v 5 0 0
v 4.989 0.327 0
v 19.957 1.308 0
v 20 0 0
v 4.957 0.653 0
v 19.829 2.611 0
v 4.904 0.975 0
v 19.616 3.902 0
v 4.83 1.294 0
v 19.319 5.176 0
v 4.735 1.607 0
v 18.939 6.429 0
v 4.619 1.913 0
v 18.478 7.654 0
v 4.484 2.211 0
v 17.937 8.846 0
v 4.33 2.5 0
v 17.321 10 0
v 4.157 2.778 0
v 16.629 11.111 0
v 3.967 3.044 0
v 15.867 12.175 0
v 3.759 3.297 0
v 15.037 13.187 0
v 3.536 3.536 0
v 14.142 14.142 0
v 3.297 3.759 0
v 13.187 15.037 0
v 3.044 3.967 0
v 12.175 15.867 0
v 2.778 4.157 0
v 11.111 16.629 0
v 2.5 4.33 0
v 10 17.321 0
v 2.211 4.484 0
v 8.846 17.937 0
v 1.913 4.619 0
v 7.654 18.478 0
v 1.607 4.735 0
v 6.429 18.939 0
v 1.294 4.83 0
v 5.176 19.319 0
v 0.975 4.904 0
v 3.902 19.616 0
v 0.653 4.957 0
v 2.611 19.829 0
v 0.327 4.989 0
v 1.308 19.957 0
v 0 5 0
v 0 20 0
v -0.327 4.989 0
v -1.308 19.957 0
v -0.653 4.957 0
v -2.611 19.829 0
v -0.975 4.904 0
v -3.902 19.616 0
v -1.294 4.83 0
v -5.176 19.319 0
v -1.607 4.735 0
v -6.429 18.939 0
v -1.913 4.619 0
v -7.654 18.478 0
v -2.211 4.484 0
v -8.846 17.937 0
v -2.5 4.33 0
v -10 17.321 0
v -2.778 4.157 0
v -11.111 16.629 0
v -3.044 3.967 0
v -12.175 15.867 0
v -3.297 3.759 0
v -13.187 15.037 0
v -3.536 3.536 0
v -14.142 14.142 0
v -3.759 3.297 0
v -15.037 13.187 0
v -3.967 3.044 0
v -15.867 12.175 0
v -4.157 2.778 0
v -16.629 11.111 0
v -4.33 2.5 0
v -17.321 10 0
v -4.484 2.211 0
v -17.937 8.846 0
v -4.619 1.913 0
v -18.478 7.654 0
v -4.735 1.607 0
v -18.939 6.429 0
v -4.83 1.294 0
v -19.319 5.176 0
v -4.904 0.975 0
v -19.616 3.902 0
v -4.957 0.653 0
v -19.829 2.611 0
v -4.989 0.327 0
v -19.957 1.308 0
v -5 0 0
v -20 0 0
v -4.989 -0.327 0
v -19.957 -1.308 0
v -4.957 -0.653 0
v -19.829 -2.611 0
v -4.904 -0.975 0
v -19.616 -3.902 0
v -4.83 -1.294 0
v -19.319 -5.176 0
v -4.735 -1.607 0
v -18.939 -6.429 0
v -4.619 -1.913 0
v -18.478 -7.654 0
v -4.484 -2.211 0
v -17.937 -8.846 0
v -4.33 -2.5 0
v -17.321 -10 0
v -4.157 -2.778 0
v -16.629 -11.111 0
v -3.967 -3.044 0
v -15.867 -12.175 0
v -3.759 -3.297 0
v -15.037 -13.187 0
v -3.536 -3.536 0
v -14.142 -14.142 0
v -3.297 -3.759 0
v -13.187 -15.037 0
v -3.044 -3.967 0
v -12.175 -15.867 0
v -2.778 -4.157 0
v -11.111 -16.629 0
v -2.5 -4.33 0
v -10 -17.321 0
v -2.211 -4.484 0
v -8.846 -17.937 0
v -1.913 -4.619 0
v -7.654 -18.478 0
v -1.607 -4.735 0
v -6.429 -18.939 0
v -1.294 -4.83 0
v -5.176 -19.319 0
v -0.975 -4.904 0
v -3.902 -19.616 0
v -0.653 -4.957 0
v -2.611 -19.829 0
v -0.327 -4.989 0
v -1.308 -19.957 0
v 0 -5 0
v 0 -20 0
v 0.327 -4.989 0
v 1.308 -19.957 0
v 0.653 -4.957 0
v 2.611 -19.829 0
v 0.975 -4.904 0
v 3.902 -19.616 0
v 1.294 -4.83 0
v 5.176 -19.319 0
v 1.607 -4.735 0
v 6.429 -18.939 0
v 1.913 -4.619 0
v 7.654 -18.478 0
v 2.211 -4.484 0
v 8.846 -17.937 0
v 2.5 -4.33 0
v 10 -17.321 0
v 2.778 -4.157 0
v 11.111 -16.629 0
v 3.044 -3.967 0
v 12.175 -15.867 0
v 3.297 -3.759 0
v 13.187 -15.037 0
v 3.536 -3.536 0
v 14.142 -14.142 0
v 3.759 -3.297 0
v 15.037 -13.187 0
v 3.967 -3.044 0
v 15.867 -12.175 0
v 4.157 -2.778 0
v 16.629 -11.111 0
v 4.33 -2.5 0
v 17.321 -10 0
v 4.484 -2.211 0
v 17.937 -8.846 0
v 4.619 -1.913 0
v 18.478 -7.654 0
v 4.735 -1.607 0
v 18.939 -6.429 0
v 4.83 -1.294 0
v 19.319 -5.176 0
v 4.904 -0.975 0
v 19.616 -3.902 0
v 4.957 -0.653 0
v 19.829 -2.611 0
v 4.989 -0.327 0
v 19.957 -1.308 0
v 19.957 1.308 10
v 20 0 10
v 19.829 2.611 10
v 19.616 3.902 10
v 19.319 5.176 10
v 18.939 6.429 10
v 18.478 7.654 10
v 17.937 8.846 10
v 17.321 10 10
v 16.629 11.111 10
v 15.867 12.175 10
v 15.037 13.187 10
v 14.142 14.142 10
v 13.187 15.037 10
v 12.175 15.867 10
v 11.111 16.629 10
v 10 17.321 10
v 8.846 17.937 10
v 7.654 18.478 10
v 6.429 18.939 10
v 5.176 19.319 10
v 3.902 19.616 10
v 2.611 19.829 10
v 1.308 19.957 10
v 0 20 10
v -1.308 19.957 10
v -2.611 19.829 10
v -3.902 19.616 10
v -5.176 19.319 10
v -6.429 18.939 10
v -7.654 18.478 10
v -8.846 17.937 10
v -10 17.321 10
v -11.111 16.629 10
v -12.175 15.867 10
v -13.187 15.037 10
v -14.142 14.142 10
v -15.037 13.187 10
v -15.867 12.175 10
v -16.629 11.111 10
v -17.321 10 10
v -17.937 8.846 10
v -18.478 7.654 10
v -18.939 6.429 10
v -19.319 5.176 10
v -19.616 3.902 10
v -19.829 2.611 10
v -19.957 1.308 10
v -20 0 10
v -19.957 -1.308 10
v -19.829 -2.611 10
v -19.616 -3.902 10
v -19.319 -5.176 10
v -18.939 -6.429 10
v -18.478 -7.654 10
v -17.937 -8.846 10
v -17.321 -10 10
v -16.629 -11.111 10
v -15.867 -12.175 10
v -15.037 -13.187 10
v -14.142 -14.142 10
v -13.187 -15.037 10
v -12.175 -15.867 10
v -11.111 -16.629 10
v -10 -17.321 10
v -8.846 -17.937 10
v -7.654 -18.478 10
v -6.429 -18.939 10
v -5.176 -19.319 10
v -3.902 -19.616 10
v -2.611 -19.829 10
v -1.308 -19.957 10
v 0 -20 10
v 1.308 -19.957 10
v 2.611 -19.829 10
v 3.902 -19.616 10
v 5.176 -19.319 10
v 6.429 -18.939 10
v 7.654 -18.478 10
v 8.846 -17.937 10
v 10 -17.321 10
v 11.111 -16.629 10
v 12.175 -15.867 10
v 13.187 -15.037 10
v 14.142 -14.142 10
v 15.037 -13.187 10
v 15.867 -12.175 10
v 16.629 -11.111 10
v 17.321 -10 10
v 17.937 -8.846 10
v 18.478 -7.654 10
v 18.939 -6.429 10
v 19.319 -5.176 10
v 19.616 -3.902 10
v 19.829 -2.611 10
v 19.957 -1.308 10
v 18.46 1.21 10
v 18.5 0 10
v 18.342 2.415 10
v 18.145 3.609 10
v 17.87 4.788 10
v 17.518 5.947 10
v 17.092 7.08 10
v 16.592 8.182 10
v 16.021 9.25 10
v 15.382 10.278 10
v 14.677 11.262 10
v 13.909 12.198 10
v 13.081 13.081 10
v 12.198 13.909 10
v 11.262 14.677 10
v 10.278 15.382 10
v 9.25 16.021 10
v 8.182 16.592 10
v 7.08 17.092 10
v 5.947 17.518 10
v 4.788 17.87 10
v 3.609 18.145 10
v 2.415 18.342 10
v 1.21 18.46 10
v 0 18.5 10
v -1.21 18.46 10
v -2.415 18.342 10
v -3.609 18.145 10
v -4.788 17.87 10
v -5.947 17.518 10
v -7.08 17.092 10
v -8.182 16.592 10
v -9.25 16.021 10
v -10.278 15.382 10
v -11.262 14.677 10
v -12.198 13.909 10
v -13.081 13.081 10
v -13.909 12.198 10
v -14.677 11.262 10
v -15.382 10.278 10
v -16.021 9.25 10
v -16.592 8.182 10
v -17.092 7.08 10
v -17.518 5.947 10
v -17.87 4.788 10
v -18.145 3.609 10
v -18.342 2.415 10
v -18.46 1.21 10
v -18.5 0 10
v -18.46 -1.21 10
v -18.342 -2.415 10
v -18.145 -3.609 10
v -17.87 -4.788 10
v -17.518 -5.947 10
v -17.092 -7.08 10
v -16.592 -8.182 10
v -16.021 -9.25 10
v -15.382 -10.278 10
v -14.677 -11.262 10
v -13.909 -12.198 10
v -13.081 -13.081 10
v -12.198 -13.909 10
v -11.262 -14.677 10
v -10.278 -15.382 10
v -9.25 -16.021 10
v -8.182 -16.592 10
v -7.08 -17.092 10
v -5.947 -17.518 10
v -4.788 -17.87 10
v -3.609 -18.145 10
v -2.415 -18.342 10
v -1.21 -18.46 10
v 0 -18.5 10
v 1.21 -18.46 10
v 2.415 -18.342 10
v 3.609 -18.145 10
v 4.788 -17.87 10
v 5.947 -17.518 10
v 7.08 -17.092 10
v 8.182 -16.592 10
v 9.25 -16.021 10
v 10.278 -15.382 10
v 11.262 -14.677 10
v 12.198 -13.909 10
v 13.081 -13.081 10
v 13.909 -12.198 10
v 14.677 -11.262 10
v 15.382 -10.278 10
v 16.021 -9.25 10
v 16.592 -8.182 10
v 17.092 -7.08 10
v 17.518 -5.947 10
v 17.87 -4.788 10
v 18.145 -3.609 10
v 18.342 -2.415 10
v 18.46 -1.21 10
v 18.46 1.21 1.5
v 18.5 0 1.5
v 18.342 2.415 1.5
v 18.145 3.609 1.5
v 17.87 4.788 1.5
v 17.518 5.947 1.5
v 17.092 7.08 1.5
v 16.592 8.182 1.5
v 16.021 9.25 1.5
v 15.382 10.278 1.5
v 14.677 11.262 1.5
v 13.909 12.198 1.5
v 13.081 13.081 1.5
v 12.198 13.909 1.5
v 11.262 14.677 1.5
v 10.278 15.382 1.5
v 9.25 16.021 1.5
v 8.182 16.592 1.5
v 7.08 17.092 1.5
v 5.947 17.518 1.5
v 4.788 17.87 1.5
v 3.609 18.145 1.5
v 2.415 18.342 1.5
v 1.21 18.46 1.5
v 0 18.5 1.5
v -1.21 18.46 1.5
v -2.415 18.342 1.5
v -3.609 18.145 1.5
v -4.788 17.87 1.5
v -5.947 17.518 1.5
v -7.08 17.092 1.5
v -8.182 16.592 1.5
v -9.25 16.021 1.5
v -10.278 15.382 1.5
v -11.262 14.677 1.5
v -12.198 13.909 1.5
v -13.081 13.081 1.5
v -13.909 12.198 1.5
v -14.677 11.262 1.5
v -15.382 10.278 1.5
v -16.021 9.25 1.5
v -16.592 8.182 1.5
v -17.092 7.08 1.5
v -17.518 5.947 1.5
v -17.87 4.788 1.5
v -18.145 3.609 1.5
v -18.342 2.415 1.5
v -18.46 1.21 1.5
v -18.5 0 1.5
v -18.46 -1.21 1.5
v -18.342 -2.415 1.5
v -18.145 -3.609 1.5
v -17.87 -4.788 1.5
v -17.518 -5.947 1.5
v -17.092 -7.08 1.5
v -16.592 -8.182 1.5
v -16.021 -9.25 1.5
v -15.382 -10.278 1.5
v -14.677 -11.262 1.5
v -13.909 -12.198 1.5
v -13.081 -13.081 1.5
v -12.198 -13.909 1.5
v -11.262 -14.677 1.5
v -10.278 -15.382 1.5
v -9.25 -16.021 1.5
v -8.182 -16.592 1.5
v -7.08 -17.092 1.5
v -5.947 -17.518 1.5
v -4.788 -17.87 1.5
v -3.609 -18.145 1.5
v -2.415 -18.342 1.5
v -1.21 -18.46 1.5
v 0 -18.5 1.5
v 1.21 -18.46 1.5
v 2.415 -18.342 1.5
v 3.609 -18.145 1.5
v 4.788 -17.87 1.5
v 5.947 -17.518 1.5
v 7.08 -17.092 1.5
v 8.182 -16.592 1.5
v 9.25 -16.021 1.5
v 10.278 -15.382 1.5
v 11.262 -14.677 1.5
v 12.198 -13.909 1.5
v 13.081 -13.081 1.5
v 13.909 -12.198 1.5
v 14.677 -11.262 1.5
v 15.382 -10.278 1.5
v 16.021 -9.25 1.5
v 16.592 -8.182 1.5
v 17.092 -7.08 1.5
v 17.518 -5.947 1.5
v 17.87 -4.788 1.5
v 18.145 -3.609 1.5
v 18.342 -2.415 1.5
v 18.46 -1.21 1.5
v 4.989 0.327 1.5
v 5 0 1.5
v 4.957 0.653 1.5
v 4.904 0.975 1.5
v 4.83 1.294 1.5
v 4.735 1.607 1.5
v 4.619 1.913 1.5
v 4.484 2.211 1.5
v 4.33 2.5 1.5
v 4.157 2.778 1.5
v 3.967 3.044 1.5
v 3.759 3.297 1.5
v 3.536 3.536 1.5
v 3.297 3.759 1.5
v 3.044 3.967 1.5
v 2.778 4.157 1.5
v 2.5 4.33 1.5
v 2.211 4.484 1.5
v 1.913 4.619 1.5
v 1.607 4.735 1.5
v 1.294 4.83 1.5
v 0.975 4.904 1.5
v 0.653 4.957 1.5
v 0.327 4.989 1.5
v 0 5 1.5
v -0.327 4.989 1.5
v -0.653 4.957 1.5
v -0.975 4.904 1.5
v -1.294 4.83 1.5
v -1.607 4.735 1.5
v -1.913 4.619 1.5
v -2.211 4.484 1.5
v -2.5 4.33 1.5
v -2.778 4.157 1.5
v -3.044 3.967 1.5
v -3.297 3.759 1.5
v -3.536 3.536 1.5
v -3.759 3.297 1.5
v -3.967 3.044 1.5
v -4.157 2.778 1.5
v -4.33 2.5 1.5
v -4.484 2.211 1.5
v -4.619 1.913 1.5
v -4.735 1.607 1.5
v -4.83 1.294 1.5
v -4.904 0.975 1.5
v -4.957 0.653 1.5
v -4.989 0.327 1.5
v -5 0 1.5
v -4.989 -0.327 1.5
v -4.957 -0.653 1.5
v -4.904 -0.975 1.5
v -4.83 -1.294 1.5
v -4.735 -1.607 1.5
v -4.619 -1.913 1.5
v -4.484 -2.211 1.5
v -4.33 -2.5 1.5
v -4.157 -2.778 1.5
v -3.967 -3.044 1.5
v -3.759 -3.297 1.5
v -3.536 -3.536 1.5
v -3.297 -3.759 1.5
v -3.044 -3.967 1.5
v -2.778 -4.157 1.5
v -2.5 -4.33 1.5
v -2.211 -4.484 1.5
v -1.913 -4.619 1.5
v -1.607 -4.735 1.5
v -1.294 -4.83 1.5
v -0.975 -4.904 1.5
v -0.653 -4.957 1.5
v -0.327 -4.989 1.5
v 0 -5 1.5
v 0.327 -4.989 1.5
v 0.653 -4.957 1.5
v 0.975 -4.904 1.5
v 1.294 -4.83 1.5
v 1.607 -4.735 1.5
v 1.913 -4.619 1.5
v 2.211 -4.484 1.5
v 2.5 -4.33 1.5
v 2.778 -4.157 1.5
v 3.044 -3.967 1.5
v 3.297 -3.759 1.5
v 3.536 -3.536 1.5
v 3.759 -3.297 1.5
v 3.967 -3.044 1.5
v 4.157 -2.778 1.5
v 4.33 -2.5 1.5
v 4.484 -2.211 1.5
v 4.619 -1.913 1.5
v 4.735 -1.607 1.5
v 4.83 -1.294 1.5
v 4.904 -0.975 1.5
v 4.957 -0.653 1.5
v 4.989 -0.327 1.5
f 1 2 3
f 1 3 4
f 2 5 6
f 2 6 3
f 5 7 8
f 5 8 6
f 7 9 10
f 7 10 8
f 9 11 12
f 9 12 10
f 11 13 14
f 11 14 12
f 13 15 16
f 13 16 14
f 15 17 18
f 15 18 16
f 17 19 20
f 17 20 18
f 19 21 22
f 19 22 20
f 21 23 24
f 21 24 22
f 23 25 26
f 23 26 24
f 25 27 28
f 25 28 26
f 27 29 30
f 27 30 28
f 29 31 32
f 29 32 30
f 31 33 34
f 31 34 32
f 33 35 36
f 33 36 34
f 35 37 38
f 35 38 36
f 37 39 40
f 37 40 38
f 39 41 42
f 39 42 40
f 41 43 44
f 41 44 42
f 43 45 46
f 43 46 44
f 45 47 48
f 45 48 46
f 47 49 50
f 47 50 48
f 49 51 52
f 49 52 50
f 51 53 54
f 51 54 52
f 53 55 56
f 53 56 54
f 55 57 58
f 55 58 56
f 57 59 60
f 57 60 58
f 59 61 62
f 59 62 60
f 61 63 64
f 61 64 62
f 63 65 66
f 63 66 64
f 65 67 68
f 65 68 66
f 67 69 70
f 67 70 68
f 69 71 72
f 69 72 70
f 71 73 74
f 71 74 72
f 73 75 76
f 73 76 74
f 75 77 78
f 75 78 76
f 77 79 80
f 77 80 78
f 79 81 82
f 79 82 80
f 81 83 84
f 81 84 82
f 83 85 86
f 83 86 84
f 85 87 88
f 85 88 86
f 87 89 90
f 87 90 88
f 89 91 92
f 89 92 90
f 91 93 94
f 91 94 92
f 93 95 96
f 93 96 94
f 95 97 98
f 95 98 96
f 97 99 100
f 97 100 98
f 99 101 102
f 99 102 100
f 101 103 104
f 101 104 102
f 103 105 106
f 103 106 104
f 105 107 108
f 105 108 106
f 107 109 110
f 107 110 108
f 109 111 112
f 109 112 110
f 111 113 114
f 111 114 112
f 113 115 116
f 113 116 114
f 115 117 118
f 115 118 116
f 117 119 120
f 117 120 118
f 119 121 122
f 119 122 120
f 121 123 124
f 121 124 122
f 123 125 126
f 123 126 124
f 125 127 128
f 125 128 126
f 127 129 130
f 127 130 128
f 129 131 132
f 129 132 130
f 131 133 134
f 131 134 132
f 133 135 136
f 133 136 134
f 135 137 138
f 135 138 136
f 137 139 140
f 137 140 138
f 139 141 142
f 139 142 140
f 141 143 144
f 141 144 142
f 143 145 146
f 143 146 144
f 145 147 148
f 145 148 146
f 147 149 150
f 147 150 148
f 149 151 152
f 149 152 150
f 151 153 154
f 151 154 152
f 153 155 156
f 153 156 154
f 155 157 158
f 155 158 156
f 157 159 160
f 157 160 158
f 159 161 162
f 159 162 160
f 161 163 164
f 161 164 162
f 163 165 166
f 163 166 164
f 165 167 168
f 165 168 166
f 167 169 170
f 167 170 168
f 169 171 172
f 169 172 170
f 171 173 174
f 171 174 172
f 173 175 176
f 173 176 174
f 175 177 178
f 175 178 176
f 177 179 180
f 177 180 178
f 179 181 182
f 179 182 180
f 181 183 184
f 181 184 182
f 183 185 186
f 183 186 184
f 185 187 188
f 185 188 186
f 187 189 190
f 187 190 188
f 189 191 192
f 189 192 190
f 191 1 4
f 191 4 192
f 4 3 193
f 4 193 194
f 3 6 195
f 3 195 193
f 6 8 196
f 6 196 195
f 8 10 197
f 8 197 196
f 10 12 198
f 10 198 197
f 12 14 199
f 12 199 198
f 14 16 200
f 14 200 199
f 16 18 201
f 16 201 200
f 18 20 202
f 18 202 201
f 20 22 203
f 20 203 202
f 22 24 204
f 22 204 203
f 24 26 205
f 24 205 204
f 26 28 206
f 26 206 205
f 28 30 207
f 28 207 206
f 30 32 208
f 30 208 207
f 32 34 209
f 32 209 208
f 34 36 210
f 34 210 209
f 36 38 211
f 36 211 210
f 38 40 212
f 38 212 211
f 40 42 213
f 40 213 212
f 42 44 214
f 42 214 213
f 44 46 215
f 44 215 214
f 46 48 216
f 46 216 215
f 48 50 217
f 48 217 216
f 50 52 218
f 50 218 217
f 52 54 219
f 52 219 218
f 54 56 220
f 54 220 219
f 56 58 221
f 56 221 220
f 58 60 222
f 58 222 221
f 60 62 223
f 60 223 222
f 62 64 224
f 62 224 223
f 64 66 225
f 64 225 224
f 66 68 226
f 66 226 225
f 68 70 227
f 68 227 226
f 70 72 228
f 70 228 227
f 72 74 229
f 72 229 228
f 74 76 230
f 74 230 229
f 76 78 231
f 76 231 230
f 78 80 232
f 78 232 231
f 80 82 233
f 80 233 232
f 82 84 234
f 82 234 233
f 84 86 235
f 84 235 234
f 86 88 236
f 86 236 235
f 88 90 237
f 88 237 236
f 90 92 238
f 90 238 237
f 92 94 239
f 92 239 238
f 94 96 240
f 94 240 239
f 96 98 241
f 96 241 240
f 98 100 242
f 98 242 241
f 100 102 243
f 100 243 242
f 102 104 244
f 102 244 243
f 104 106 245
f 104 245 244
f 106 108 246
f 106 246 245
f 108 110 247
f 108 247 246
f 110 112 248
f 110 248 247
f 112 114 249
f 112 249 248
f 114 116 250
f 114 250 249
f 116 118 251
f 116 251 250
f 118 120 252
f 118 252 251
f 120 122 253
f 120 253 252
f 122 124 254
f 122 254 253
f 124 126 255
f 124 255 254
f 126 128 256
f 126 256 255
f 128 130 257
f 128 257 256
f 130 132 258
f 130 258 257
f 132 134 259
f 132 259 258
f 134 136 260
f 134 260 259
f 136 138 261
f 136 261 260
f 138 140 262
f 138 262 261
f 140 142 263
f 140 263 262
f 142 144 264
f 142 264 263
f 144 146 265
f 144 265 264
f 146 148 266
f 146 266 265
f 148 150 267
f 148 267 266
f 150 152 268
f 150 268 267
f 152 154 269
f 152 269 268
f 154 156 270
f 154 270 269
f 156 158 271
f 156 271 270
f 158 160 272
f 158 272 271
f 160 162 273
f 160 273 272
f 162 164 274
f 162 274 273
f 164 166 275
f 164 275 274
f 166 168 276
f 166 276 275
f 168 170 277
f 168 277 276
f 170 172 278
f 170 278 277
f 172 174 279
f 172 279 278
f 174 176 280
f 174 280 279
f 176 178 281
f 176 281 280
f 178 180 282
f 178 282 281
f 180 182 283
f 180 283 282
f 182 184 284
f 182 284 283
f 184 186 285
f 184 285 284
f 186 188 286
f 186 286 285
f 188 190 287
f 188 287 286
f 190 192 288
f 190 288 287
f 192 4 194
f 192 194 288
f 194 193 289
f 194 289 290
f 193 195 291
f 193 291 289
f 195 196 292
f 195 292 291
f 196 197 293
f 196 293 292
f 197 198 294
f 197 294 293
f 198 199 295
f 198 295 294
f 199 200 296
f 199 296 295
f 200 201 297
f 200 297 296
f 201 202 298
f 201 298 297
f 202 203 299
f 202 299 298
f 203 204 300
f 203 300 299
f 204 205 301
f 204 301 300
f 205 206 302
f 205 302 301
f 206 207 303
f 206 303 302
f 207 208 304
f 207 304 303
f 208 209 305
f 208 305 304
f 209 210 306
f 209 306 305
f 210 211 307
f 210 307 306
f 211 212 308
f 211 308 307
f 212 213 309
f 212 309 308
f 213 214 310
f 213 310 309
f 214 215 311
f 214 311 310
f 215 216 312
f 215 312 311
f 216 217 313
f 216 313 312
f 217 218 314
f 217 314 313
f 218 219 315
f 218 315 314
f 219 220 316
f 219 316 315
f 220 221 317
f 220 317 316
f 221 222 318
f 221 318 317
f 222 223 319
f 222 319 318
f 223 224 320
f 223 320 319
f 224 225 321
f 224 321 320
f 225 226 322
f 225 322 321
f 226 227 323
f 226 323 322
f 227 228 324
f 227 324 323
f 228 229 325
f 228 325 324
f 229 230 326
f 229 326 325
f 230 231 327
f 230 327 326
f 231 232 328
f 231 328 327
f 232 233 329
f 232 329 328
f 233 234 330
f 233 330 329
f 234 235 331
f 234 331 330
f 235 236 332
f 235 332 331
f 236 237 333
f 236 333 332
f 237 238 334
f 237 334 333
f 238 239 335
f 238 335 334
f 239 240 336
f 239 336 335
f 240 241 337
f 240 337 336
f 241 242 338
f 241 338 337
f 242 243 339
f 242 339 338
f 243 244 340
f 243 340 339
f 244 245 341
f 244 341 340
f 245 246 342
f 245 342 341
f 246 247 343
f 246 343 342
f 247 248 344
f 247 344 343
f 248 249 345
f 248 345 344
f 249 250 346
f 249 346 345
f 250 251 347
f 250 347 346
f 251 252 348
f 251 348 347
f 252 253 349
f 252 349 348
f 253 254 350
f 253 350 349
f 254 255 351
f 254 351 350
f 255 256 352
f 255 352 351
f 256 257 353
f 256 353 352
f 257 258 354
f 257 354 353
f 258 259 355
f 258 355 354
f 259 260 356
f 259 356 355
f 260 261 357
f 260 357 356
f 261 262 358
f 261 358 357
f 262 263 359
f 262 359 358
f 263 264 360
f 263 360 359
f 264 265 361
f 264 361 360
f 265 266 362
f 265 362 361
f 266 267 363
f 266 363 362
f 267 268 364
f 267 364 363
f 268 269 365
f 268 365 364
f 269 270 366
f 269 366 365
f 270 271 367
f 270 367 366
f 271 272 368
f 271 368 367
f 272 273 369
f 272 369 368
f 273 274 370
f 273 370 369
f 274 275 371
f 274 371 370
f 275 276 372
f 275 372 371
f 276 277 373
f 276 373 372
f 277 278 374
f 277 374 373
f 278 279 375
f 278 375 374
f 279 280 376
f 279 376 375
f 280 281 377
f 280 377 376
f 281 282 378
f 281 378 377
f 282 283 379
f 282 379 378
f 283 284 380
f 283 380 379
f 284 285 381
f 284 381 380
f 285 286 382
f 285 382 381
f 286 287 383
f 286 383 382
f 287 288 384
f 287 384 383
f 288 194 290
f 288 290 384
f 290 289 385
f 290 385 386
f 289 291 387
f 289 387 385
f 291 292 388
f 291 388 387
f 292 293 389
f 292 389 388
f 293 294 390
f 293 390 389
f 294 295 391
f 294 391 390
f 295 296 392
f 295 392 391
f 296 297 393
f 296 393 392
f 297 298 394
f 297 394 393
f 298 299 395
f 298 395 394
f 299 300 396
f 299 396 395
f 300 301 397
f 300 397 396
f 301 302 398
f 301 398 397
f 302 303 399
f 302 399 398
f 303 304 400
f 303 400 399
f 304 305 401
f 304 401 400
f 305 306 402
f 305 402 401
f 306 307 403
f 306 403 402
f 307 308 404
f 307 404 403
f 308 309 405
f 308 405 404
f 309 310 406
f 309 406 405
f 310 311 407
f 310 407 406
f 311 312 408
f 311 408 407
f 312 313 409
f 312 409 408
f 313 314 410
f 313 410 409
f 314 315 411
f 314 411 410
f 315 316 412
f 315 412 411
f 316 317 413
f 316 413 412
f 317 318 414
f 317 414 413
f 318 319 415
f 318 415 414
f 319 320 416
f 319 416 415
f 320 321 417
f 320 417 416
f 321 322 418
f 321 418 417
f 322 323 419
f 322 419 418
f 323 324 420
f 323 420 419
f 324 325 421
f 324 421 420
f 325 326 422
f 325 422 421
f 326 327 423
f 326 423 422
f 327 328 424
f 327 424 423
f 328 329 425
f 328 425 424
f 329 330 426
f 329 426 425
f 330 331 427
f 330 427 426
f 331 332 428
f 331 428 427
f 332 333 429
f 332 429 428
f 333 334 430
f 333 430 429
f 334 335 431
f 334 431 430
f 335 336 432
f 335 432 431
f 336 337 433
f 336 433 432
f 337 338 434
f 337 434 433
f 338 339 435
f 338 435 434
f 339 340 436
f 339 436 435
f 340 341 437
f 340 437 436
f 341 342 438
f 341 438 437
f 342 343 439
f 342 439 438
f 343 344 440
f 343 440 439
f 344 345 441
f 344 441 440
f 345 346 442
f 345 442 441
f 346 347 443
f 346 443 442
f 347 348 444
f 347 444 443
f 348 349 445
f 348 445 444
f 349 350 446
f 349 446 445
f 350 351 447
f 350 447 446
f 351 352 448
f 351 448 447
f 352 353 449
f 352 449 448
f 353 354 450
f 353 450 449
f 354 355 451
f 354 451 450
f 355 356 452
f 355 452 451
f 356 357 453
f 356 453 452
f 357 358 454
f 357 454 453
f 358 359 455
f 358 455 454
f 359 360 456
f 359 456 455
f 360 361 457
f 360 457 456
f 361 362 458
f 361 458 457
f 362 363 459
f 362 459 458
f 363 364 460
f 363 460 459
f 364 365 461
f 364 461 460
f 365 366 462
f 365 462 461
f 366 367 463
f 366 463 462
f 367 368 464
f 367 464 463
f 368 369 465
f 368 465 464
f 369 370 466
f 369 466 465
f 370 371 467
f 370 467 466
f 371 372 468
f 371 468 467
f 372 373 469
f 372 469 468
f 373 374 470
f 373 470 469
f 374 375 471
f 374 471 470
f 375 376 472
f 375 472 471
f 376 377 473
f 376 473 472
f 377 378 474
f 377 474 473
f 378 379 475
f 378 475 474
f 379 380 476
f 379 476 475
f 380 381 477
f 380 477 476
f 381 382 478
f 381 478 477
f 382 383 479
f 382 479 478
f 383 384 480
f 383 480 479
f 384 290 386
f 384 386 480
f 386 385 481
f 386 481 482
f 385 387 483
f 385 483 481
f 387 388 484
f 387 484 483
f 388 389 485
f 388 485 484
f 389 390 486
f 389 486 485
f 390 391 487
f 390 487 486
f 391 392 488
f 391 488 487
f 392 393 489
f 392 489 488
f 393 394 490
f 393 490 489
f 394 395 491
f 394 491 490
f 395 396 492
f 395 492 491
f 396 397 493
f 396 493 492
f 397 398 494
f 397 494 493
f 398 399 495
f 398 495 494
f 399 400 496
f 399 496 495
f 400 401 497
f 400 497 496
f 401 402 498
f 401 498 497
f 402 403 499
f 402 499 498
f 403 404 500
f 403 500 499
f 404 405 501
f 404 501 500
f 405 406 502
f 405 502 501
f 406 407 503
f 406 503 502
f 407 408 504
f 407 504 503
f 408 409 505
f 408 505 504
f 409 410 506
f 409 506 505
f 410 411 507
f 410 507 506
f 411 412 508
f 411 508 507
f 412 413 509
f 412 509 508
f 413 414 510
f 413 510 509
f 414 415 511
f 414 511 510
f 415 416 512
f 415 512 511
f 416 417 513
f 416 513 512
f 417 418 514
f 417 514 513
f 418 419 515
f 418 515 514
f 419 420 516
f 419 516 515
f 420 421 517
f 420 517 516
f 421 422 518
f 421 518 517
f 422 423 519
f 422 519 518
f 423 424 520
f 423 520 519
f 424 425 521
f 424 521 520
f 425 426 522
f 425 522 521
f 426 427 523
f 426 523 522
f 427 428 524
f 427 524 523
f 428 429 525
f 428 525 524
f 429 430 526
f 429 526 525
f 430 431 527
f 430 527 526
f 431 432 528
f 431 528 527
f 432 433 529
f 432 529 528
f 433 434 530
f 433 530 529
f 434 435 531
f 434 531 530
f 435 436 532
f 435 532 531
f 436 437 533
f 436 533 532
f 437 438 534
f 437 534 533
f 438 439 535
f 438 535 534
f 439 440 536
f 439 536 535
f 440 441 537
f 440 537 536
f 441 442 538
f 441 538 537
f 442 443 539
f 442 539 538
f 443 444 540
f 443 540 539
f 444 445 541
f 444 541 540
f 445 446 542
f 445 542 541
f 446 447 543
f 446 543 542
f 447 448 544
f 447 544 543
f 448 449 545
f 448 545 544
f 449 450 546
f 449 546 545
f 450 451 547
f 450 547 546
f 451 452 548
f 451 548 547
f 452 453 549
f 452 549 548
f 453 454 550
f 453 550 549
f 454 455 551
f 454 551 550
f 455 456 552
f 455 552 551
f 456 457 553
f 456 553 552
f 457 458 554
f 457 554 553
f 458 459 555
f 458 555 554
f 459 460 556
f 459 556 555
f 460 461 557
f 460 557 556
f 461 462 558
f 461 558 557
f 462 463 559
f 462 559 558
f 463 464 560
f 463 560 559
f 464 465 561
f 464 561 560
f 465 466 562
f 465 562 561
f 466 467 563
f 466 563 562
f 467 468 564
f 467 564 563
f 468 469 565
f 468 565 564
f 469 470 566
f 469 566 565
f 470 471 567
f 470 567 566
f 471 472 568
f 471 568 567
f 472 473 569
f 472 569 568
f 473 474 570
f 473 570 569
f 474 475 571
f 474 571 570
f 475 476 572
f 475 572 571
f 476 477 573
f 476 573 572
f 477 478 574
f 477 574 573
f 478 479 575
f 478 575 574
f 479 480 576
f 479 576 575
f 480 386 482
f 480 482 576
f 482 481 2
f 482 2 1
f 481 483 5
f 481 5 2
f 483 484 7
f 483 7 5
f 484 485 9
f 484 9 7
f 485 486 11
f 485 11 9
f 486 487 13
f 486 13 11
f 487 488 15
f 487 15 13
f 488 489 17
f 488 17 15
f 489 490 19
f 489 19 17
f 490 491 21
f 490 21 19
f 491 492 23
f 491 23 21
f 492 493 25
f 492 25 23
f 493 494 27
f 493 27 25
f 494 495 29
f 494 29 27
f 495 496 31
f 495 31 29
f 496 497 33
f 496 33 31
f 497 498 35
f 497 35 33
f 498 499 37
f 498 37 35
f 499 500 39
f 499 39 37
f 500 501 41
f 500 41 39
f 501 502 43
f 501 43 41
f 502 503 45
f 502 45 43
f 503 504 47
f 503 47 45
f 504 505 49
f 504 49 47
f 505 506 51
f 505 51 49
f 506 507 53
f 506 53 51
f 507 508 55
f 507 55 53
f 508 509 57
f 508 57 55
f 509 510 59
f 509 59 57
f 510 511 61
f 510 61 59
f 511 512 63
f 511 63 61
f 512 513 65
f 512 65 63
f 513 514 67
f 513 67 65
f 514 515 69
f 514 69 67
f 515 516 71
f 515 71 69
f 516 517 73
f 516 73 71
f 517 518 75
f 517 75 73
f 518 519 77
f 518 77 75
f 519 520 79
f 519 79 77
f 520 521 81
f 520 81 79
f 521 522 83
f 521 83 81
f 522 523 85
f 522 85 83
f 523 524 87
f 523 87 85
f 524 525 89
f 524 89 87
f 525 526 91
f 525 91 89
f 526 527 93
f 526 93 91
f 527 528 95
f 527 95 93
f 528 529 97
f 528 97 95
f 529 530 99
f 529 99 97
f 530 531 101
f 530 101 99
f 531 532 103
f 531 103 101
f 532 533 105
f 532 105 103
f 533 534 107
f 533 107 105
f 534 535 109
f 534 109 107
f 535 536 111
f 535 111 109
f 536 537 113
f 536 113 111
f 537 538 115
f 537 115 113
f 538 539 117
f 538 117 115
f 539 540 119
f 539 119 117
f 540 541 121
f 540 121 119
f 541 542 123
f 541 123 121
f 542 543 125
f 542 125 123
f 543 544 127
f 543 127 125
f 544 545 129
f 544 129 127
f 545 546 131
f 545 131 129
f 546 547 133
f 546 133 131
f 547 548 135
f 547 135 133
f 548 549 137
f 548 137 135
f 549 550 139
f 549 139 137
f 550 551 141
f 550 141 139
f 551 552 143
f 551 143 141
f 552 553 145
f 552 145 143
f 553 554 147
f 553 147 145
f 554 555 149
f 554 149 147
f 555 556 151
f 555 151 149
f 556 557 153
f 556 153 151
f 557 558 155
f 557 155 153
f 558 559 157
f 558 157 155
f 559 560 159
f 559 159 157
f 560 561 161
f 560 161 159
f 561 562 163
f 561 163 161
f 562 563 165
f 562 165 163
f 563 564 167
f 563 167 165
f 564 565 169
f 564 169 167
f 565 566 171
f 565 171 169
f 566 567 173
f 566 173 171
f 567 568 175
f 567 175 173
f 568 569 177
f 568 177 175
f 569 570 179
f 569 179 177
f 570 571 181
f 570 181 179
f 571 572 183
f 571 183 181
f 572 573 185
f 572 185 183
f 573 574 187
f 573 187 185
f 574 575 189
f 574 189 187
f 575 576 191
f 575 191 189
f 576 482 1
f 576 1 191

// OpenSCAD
// Original MechIntel educational model. CC0-1.0. Units: mm.
// Not a standardized or load-rated component.
$fn=96;
// Section points: [radius, height], mm. Edit to change the profile.
section=[[5, 0], [20, 0], [20, 10], [18.5, 10], [18.5, 1.5], [5, 1.5]];
rotate_extrude($fn=96) polygon(points=section);
